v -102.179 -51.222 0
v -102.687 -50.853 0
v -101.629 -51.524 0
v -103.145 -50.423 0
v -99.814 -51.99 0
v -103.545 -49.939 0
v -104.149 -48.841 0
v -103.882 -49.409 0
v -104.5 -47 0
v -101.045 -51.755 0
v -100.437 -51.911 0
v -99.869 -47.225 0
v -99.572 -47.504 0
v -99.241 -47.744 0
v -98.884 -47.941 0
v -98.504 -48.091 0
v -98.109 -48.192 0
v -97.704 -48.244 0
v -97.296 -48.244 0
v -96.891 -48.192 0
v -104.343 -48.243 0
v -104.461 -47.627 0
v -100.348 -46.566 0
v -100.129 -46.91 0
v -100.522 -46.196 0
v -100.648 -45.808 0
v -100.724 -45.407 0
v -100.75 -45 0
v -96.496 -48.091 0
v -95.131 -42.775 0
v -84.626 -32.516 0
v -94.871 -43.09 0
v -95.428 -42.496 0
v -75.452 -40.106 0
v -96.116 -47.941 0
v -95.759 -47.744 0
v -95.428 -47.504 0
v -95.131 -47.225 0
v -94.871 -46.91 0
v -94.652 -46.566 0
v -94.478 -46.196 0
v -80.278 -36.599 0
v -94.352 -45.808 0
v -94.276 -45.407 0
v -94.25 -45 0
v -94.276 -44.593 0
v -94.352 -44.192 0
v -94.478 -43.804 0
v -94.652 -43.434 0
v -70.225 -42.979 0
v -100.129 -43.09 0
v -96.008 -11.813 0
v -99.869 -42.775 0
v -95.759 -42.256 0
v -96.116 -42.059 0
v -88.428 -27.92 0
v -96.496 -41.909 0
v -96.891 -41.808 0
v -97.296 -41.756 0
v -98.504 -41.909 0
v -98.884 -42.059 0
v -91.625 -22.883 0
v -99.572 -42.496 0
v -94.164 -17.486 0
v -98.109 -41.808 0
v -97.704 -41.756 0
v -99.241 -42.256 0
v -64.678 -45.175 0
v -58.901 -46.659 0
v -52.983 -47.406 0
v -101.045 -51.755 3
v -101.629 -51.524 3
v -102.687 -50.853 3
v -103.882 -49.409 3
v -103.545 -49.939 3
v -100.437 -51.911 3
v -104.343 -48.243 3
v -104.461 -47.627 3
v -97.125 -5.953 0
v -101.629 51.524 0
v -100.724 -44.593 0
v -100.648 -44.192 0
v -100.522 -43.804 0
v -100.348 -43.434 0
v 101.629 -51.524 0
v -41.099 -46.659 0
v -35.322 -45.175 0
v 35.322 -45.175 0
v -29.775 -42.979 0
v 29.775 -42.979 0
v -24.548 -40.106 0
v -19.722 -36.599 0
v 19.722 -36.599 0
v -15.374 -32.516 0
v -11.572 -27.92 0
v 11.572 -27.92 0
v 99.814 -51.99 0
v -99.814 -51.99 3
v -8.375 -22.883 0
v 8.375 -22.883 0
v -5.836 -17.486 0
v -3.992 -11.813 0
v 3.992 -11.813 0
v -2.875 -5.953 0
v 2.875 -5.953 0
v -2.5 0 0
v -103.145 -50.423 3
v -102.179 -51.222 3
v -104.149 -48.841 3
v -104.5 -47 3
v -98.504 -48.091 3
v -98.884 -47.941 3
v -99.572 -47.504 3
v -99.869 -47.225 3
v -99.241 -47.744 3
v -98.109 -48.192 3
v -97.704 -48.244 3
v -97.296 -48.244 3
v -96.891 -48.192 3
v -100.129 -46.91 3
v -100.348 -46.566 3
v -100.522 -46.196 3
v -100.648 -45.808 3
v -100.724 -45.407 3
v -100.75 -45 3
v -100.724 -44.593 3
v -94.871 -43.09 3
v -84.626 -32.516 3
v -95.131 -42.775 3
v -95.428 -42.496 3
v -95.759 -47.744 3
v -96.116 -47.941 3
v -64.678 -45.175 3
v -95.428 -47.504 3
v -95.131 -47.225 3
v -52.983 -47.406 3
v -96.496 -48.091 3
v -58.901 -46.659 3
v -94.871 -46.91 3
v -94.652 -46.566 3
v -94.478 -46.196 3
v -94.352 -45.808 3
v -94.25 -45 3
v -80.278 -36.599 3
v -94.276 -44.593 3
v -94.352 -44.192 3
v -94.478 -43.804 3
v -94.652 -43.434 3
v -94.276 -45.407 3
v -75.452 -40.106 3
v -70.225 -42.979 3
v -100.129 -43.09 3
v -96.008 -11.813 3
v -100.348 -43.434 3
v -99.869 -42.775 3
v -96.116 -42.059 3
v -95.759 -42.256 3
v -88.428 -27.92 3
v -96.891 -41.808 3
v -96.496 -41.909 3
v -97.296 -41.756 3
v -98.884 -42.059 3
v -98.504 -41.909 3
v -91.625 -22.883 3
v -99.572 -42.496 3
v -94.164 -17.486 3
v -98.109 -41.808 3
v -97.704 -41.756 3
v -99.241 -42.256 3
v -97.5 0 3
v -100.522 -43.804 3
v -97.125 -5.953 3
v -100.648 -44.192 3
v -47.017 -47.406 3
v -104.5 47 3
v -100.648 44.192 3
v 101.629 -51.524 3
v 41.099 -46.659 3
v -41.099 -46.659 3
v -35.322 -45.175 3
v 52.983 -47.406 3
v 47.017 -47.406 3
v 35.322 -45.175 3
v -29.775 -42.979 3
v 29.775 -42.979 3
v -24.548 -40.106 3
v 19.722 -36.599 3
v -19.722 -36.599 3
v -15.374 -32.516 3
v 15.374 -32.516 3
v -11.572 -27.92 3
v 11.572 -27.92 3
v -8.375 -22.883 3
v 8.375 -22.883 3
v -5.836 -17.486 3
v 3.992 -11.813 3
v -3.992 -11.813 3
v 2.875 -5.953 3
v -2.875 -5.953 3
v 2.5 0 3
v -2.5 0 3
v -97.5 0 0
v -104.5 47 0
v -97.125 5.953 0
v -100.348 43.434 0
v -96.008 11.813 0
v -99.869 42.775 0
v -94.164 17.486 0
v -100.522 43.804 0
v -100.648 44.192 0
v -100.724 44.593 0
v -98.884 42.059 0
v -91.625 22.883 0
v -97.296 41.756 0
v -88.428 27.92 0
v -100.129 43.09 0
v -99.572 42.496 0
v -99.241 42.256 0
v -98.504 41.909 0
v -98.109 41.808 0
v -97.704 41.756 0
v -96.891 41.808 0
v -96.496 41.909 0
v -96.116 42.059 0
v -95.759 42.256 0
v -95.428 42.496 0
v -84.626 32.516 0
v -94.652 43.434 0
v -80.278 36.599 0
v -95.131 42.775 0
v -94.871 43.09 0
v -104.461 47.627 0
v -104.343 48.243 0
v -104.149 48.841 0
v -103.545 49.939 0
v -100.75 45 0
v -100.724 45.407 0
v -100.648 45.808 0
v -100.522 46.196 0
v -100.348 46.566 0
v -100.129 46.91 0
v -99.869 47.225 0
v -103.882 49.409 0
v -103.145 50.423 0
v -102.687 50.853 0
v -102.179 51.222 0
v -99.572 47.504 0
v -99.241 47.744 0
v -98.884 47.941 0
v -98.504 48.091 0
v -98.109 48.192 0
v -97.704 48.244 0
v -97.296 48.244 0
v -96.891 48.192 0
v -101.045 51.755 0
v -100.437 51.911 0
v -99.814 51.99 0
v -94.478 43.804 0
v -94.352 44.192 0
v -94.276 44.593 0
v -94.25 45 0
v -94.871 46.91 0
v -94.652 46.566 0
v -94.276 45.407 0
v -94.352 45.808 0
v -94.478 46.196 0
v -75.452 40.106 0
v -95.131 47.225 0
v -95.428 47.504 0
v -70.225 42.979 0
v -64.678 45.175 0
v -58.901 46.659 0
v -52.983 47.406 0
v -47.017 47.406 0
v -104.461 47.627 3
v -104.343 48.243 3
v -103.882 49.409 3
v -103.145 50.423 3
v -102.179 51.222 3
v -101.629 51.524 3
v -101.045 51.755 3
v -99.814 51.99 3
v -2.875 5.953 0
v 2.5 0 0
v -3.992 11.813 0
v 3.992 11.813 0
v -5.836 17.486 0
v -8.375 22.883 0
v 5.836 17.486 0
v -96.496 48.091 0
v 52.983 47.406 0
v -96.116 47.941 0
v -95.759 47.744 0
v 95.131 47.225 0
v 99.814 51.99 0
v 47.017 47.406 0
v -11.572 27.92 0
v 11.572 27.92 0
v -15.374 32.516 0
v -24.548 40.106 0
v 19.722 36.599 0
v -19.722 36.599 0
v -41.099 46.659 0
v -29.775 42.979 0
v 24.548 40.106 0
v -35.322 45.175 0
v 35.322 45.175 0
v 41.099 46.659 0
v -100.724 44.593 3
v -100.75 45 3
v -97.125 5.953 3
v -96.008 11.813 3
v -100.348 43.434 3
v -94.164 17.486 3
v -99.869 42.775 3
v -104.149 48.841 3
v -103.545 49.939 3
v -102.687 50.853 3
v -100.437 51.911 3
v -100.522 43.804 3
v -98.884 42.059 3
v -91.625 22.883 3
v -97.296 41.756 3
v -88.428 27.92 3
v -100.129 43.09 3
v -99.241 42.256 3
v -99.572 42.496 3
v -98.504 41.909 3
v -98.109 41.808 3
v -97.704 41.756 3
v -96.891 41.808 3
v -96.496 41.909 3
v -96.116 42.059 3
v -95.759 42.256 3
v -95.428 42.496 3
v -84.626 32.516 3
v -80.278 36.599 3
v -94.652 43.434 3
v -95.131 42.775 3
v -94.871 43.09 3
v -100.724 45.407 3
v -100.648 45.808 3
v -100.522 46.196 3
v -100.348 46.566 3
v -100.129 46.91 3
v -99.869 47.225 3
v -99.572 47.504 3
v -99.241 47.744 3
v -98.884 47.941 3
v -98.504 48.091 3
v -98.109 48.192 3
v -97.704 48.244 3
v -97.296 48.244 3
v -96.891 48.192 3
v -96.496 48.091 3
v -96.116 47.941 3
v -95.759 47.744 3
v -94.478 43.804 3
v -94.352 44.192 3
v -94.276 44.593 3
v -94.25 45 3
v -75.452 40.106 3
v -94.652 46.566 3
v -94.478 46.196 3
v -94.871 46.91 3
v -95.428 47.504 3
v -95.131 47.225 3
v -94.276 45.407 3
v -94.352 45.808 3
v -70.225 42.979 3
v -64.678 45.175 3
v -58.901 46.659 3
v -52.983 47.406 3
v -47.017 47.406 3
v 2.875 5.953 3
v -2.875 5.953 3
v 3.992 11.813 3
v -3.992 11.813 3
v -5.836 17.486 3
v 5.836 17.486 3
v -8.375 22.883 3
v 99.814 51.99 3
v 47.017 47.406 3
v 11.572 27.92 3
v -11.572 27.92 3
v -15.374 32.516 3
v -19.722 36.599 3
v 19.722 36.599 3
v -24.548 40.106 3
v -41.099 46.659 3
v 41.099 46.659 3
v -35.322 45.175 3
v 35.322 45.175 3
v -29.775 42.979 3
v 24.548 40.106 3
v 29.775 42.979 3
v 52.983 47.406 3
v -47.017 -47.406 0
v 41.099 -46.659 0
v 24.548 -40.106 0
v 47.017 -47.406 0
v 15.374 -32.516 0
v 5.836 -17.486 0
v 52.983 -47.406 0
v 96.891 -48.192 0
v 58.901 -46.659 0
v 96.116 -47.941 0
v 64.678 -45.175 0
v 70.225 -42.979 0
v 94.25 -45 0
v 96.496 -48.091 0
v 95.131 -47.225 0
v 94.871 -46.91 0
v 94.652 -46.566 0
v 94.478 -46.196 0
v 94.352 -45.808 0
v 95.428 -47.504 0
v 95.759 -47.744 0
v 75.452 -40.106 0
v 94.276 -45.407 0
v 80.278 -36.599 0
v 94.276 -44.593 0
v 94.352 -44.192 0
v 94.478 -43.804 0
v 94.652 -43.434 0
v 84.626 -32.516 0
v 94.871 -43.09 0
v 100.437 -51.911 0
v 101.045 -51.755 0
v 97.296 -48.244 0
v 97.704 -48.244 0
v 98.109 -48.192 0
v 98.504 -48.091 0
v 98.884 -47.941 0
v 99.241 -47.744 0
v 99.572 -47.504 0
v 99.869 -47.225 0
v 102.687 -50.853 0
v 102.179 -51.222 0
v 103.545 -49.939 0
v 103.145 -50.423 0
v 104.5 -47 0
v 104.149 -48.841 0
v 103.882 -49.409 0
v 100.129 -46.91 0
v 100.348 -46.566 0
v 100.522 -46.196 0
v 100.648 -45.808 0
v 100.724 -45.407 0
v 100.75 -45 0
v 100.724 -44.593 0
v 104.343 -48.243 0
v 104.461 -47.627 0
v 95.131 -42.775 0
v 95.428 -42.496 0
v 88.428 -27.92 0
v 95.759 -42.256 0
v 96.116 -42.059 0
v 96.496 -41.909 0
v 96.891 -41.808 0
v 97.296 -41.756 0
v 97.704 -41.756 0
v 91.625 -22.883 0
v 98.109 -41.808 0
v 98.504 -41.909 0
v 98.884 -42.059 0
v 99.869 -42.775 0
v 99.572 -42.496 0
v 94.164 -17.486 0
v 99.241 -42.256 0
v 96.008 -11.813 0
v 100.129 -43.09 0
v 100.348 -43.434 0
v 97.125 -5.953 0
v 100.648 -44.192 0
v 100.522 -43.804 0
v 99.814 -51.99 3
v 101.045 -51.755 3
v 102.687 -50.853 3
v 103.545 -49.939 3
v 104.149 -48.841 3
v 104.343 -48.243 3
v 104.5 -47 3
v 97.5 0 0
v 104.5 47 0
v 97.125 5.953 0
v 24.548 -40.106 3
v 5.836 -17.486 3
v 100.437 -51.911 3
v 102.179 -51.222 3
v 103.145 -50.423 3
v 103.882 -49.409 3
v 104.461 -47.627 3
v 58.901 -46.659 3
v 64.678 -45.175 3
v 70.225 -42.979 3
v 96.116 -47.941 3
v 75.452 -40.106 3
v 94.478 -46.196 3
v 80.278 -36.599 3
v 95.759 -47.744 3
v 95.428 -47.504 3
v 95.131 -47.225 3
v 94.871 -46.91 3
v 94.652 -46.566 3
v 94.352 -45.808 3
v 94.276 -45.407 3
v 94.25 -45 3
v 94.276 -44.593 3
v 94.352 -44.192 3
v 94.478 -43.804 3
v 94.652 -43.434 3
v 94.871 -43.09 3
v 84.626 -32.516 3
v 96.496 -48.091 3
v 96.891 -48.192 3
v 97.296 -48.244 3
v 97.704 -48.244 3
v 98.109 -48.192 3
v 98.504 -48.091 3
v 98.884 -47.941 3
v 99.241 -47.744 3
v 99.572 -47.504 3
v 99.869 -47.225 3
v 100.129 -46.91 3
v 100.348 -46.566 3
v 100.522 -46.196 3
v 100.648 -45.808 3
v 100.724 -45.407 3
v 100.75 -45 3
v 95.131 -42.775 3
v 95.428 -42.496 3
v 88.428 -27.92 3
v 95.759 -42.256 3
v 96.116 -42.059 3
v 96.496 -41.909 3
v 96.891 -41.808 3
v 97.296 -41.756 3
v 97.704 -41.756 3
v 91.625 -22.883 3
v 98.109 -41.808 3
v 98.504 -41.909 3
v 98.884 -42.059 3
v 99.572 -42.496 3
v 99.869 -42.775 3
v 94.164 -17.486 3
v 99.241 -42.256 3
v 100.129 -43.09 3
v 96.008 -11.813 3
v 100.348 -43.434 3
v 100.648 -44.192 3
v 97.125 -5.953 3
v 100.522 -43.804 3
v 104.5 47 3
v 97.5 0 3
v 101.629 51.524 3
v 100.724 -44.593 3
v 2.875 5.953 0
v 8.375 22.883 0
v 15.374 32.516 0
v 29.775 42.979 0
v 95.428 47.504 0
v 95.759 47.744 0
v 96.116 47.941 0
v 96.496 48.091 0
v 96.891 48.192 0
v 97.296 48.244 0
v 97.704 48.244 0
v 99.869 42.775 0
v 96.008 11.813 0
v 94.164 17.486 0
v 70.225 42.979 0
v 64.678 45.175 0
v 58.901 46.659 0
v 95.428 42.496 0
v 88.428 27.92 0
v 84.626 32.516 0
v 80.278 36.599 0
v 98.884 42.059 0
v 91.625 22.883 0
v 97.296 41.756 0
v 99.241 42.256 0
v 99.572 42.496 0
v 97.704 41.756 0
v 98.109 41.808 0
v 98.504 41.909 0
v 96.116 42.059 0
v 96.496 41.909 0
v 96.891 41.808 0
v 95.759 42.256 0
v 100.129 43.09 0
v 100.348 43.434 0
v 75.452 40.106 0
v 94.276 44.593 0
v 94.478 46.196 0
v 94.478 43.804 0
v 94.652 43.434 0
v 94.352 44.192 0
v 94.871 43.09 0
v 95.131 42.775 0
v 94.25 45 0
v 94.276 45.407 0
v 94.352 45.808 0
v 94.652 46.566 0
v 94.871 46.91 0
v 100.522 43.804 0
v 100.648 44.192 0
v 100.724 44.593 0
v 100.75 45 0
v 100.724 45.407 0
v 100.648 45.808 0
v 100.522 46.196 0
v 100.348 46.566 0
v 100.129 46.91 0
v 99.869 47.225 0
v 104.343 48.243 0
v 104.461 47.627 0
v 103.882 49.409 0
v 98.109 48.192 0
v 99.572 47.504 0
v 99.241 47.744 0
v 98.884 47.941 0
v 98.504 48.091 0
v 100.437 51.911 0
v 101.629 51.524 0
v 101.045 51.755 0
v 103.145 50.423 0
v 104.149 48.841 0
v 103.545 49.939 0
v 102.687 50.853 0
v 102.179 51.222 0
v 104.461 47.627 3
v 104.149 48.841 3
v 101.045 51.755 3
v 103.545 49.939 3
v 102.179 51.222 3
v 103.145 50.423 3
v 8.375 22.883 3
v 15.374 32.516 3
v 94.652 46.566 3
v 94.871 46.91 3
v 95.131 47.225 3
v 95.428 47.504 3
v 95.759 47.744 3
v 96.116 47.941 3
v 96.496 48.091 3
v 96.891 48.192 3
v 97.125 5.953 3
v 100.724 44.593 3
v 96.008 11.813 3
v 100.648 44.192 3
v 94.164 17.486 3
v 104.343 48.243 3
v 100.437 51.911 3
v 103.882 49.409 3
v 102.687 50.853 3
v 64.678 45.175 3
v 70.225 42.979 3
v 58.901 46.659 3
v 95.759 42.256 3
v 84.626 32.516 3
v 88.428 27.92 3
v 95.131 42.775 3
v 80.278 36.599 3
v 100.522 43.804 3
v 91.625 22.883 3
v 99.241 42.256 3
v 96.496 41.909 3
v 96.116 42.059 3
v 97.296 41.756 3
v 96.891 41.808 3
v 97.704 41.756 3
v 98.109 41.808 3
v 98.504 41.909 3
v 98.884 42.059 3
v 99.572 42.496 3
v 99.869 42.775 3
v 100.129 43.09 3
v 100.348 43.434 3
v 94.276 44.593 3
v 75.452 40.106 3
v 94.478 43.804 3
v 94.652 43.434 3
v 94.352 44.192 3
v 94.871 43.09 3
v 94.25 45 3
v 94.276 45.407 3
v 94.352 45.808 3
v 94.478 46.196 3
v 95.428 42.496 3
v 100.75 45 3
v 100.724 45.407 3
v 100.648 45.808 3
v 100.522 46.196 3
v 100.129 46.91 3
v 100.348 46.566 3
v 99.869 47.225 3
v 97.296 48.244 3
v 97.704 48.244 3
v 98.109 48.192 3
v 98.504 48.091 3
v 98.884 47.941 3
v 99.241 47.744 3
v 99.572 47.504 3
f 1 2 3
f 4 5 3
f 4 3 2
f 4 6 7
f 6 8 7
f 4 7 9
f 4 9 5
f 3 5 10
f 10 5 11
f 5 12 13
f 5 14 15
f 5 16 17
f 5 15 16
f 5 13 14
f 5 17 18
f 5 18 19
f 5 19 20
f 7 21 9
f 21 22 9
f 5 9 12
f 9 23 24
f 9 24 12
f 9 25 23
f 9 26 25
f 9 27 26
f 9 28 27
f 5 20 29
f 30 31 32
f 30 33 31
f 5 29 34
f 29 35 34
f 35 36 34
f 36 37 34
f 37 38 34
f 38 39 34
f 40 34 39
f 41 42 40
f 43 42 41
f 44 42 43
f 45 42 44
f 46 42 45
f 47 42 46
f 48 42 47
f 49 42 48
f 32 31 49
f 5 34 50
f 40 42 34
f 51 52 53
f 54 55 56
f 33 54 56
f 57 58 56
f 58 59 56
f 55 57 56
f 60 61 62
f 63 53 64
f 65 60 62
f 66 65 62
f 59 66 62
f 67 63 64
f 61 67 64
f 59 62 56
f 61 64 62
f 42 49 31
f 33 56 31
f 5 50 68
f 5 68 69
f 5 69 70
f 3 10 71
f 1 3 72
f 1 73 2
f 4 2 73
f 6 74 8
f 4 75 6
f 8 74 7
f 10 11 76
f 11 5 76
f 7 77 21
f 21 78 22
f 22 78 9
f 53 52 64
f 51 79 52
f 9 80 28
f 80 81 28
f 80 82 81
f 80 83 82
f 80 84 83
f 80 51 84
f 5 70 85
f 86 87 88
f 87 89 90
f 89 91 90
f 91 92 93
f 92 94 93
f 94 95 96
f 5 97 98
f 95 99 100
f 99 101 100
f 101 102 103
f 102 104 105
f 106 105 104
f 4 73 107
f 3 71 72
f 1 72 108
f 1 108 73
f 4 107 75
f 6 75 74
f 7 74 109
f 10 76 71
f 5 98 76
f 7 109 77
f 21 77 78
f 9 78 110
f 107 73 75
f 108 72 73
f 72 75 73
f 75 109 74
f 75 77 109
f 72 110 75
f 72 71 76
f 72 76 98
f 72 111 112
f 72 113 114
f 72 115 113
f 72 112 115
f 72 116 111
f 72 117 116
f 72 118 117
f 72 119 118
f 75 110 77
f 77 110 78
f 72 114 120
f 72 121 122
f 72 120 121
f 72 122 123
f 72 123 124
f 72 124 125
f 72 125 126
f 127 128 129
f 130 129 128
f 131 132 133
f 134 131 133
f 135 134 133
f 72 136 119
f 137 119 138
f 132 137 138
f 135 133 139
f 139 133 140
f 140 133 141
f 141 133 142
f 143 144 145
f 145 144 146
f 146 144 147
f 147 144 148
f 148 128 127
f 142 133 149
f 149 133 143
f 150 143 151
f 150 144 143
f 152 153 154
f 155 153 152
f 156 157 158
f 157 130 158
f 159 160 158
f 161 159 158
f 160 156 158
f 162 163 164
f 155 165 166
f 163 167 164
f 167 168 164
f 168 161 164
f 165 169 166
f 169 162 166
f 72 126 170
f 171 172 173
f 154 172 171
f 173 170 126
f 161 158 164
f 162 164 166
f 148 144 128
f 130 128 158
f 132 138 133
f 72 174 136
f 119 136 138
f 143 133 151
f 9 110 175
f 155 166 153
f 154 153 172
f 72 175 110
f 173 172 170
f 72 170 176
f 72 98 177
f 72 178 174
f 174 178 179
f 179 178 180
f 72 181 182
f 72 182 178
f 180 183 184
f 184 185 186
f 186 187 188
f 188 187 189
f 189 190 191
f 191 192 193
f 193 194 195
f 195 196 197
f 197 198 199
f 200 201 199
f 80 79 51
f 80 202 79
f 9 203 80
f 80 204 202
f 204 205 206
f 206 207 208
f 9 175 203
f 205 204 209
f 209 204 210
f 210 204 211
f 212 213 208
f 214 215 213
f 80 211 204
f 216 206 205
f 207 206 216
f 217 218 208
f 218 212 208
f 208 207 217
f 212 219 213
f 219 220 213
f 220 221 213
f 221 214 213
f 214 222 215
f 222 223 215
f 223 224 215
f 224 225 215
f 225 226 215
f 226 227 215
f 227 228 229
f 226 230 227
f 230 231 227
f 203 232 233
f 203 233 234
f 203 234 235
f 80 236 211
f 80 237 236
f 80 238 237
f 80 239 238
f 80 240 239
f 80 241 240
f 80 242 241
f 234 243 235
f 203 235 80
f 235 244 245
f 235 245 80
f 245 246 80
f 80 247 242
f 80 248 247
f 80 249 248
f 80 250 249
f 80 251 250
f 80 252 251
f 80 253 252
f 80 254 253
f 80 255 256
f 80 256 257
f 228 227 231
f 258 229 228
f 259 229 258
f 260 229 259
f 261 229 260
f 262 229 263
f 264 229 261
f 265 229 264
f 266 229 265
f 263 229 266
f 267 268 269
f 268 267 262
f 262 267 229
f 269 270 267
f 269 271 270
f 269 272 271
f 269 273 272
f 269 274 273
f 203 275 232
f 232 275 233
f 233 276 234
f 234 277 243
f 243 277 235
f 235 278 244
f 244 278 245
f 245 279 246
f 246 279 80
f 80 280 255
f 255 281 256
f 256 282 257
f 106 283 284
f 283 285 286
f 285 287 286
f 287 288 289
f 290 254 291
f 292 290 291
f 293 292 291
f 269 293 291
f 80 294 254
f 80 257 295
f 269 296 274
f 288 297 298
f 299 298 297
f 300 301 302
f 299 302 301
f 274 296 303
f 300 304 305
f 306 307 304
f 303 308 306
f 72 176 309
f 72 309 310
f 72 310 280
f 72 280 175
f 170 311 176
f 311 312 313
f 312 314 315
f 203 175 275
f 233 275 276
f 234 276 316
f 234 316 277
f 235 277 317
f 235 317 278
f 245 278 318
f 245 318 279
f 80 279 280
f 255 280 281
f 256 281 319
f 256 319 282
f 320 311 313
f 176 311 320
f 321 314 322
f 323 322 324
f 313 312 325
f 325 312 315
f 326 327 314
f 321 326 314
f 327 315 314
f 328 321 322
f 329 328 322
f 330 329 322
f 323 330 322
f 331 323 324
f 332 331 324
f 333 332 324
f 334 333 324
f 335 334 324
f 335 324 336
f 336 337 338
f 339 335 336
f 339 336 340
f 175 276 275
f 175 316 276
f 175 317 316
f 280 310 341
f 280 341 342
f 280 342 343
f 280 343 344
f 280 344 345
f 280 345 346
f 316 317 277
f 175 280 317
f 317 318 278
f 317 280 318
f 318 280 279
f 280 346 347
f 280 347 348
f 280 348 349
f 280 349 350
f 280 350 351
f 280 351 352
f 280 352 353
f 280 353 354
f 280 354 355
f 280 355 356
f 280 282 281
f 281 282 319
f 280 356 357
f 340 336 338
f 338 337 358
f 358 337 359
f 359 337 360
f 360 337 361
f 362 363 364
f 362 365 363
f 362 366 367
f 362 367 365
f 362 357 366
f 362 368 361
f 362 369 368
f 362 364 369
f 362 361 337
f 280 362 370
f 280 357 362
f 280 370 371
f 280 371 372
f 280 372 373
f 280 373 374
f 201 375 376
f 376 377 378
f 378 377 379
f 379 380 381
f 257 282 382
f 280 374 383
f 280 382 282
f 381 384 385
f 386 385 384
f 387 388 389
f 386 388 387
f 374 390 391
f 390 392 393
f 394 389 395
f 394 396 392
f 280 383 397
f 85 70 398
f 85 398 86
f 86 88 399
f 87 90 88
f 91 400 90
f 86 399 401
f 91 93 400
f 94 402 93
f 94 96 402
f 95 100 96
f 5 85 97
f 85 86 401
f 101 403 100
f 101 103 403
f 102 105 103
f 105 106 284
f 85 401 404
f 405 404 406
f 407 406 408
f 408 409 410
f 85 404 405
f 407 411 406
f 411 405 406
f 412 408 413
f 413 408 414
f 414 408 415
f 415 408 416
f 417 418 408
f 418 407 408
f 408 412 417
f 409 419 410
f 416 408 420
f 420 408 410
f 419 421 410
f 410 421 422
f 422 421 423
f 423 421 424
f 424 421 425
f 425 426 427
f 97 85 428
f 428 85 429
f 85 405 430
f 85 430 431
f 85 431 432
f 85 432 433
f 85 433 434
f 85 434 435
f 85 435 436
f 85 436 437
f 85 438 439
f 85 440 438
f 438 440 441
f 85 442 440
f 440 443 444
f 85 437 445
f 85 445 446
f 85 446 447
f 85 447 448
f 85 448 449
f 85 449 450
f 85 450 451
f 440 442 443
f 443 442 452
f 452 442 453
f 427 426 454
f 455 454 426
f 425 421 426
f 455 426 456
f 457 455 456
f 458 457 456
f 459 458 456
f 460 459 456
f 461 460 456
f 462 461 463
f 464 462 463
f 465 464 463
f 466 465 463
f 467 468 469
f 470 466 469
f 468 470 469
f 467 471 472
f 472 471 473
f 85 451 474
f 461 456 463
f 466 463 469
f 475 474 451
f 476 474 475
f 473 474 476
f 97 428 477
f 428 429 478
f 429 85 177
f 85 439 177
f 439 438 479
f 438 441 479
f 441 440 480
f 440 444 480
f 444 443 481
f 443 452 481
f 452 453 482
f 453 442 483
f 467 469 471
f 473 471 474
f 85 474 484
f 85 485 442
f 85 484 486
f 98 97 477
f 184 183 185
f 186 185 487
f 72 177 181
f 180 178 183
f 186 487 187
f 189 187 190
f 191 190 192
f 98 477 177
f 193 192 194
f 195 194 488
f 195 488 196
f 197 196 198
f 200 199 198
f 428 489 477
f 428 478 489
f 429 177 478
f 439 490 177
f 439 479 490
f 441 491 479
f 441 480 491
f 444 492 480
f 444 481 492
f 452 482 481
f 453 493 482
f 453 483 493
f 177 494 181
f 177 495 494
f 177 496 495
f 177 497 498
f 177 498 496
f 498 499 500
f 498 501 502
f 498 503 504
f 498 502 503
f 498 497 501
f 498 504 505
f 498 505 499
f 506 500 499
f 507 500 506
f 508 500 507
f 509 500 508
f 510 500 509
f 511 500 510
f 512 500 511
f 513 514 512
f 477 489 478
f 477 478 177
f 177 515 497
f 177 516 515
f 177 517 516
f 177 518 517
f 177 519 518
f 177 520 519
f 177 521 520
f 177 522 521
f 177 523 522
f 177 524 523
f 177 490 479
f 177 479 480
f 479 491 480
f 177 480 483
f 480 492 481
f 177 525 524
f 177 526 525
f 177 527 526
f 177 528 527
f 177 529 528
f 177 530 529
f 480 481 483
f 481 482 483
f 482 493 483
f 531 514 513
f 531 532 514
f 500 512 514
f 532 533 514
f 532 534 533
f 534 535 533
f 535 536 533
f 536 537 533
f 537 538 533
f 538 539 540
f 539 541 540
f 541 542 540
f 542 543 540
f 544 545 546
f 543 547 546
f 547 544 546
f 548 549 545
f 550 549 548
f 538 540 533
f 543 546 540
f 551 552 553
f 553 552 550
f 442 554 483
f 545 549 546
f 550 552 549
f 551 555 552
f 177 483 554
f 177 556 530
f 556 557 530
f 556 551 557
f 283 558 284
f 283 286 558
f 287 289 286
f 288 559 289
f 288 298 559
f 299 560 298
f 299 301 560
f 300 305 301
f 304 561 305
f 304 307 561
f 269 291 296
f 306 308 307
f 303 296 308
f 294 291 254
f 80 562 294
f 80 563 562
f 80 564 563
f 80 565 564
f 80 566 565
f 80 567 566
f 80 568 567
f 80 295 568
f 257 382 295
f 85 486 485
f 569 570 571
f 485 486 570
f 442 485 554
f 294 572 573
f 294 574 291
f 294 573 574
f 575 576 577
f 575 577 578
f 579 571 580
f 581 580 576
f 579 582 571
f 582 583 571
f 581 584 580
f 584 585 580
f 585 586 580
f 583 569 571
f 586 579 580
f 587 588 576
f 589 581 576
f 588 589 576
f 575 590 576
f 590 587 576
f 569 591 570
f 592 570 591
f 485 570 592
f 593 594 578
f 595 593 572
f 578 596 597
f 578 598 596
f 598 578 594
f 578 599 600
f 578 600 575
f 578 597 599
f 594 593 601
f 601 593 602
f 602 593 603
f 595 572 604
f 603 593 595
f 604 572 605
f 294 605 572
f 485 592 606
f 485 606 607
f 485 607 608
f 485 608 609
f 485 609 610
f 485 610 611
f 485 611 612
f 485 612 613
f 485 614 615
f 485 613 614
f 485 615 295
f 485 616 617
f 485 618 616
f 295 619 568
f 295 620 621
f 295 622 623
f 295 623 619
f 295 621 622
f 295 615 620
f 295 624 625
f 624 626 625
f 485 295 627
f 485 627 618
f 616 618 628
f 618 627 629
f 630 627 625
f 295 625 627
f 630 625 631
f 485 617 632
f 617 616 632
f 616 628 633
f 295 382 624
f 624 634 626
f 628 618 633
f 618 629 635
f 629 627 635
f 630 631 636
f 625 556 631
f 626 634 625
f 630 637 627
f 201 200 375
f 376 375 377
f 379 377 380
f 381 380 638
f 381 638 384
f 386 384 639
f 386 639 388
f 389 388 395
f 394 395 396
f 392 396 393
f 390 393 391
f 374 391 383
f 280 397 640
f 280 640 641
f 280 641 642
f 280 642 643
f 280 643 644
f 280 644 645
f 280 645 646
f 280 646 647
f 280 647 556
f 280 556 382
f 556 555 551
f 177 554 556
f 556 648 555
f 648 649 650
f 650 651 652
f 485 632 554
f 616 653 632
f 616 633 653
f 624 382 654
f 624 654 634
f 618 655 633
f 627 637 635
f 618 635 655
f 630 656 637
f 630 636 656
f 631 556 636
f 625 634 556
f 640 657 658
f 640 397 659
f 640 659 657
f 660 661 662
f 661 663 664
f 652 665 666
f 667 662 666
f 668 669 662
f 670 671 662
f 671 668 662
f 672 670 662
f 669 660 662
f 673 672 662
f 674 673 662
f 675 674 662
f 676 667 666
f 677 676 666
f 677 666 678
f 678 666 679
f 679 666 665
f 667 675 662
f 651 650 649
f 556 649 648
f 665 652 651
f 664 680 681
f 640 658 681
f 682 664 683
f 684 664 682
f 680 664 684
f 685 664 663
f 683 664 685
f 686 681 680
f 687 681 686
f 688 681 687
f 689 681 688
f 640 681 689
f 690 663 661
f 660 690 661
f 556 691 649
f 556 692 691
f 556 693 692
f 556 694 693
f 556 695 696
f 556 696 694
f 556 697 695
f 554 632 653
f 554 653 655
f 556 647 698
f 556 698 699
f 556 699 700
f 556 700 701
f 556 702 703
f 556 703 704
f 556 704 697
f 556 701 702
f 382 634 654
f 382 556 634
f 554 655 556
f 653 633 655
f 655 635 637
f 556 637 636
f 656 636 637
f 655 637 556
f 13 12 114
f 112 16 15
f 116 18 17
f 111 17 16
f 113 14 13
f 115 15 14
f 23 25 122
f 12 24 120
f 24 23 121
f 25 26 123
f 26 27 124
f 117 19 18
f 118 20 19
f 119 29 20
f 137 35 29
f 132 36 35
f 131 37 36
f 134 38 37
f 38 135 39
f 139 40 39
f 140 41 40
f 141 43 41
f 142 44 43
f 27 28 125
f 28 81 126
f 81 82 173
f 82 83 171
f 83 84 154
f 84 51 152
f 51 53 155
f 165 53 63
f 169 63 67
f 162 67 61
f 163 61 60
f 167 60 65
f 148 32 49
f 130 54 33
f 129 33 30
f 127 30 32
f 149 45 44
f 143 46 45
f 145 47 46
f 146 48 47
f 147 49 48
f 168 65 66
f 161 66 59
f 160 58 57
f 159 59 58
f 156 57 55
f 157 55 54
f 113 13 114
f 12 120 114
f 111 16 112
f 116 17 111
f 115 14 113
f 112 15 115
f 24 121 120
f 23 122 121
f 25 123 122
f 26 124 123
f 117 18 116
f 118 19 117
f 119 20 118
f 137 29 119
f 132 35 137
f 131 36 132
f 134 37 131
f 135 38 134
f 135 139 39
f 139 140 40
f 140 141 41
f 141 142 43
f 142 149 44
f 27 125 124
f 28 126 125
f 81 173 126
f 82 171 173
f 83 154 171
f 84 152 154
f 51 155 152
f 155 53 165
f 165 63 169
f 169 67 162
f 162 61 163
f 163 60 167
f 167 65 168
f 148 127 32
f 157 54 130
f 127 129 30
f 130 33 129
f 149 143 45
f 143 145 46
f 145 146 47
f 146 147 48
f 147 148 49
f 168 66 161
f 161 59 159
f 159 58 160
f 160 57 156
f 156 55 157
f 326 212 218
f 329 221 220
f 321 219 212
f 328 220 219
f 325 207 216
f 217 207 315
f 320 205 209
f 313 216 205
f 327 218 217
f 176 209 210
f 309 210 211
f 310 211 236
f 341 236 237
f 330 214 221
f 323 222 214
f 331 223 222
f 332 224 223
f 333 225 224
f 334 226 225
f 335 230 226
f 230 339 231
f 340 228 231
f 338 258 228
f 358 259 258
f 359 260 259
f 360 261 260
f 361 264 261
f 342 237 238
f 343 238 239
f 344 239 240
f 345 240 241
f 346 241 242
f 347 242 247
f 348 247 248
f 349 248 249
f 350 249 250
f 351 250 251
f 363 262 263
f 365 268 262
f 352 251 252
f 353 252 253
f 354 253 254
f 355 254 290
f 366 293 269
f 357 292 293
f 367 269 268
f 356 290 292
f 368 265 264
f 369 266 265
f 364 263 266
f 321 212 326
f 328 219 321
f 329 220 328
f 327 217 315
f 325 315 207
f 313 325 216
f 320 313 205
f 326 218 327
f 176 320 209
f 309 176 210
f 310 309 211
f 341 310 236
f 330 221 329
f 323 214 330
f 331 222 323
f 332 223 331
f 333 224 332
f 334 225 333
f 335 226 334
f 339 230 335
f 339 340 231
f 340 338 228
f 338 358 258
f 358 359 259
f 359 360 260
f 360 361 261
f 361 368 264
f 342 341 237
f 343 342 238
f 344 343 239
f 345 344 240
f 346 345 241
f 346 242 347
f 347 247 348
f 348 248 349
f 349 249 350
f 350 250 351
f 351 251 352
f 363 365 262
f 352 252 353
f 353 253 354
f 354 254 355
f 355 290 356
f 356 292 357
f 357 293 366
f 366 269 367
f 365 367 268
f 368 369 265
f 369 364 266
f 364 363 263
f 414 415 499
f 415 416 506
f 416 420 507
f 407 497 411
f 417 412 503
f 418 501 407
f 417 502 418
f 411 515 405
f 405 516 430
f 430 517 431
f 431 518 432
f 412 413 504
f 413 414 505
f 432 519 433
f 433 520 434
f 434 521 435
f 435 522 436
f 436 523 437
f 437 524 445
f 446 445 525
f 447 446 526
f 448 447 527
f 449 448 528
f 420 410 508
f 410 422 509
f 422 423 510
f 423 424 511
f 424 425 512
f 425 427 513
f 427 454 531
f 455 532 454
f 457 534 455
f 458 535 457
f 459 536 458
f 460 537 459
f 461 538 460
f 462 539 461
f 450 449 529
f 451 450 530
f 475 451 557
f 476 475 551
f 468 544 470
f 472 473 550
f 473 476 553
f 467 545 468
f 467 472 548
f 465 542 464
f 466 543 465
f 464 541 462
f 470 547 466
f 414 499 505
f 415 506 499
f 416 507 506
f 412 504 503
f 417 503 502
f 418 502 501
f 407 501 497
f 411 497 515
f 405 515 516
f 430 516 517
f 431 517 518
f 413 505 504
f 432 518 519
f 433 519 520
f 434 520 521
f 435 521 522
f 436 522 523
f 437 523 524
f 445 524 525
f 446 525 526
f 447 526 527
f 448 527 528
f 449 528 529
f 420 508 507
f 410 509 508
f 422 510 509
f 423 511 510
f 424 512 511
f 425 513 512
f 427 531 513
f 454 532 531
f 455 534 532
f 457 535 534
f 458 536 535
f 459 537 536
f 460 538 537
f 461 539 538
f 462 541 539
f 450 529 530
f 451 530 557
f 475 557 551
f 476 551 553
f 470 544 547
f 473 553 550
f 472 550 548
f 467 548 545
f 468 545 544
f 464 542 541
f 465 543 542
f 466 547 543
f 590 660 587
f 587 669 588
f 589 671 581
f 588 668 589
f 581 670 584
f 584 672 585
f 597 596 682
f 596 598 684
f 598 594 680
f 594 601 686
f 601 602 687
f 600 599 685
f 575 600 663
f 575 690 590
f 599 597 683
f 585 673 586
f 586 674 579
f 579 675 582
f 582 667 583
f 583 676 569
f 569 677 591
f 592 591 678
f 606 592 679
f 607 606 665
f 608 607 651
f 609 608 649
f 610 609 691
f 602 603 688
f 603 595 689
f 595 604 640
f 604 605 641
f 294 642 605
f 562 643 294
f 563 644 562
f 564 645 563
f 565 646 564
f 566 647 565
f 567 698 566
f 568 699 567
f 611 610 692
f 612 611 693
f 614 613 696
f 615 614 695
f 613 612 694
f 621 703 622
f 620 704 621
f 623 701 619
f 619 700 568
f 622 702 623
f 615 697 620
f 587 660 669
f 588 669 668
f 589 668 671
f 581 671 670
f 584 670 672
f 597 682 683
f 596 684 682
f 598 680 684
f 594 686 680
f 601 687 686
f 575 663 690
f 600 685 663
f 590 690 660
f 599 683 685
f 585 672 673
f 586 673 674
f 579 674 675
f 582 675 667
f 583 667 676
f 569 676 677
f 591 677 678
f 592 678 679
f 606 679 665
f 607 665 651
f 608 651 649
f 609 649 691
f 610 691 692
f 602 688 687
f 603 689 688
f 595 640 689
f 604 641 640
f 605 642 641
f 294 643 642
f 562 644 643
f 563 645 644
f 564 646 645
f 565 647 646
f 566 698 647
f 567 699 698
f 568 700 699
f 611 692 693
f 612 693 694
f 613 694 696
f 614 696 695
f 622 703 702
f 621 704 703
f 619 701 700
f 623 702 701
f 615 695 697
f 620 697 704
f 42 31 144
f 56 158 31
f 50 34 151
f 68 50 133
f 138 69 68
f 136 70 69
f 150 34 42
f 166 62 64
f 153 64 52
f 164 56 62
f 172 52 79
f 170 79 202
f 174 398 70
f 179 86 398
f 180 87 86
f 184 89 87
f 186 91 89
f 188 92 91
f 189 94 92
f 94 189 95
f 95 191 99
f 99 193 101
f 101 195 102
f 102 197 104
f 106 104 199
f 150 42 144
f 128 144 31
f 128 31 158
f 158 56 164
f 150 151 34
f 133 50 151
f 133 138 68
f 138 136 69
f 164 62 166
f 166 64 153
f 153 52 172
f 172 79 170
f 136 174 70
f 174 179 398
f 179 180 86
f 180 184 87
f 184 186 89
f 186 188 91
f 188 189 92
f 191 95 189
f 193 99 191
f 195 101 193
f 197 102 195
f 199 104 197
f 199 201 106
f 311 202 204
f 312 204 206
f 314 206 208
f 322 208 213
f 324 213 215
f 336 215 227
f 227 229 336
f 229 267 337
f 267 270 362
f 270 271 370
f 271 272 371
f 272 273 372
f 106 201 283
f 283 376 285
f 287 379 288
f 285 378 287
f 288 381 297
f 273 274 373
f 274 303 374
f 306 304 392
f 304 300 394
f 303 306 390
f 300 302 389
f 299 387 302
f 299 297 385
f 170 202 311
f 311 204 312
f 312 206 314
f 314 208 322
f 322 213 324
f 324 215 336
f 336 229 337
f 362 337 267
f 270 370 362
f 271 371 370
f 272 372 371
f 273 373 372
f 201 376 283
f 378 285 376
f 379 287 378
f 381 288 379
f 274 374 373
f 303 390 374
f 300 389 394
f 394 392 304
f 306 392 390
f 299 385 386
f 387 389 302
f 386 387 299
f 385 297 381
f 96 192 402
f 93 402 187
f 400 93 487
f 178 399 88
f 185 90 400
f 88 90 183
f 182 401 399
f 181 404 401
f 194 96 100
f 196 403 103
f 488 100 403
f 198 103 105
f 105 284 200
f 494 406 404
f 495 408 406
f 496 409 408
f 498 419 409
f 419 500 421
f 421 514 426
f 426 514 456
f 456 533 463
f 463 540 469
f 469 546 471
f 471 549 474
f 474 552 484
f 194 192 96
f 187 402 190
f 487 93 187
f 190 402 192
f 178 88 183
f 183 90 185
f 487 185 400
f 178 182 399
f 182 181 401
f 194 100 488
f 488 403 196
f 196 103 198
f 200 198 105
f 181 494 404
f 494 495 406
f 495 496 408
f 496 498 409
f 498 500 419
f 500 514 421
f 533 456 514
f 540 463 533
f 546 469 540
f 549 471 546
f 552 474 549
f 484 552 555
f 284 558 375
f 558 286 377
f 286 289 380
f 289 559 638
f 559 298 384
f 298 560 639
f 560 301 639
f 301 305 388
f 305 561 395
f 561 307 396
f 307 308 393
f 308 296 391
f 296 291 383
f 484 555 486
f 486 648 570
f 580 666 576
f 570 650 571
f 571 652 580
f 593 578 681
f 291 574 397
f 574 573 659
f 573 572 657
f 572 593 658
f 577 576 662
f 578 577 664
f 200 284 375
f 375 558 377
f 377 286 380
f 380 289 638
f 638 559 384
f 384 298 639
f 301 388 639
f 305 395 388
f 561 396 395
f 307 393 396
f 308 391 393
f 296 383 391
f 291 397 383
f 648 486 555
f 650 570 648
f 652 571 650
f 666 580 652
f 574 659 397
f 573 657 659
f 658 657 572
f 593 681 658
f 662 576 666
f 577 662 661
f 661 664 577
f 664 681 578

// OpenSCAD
$fn = 50;

difference() {
	union() {
		hull() {
			translate(v = [-99.5, 47.0, 0]) {
				cylinder(h = 3, r = 5);
			}
			translate(v = [99.5, 47.0, 0]) {
				cylinder(h = 3, r = 5);
			}
			translate(v = [-99.5, -47.0, 0]) {
				cylinder(h = 3, r = 5);
			}
			translate(v = [99.5, -47.0, 0]) {
				cylinder(h = 3, r = 5);
			}
		}
	}
	union() {
		translate(v = [-97.5, -45.0, -100.0]) {
			cylinder(h = 200, r = 3.25);
		}
		translate(v = [-97.5, 45.0, -100.0]) {
			cylinder(h = 200, r = 3.25);
		}
		translate(v = [97.5, -45.0, -100.0]) {
			cylinder(h = 200, r = 3.25);
		}
		translate(v = [97.5, 45.0, -100.0]) {
			cylinder(h = 200, r = 3.25);
		}
		translate(v = [-97.5, -45.0, -100.0]) {
			cylinder(h = 200, r = 1.8);
		}
		translate(v = [-97.5, 45.0, -100.0]) {
			cylinder(h = 200, r = 1.8);
		}
		translate(v = [97.5, -45.0, -100.0]) {
			cylinder(h = 200, r = 1.8);
		}
		translate(v = [97.5, 45.0, -100.0]) {
			cylinder(h = 200, r = 1.8);
		}
		translate(v = [-50.0, 0, 0.0]) {
			cylinder(h = 3, r = 47.5);
		}
		translate(v = [50.0, 0, 0.0]) {
			cylinder(h = 3, r = 47.5);
		}
	}
}
